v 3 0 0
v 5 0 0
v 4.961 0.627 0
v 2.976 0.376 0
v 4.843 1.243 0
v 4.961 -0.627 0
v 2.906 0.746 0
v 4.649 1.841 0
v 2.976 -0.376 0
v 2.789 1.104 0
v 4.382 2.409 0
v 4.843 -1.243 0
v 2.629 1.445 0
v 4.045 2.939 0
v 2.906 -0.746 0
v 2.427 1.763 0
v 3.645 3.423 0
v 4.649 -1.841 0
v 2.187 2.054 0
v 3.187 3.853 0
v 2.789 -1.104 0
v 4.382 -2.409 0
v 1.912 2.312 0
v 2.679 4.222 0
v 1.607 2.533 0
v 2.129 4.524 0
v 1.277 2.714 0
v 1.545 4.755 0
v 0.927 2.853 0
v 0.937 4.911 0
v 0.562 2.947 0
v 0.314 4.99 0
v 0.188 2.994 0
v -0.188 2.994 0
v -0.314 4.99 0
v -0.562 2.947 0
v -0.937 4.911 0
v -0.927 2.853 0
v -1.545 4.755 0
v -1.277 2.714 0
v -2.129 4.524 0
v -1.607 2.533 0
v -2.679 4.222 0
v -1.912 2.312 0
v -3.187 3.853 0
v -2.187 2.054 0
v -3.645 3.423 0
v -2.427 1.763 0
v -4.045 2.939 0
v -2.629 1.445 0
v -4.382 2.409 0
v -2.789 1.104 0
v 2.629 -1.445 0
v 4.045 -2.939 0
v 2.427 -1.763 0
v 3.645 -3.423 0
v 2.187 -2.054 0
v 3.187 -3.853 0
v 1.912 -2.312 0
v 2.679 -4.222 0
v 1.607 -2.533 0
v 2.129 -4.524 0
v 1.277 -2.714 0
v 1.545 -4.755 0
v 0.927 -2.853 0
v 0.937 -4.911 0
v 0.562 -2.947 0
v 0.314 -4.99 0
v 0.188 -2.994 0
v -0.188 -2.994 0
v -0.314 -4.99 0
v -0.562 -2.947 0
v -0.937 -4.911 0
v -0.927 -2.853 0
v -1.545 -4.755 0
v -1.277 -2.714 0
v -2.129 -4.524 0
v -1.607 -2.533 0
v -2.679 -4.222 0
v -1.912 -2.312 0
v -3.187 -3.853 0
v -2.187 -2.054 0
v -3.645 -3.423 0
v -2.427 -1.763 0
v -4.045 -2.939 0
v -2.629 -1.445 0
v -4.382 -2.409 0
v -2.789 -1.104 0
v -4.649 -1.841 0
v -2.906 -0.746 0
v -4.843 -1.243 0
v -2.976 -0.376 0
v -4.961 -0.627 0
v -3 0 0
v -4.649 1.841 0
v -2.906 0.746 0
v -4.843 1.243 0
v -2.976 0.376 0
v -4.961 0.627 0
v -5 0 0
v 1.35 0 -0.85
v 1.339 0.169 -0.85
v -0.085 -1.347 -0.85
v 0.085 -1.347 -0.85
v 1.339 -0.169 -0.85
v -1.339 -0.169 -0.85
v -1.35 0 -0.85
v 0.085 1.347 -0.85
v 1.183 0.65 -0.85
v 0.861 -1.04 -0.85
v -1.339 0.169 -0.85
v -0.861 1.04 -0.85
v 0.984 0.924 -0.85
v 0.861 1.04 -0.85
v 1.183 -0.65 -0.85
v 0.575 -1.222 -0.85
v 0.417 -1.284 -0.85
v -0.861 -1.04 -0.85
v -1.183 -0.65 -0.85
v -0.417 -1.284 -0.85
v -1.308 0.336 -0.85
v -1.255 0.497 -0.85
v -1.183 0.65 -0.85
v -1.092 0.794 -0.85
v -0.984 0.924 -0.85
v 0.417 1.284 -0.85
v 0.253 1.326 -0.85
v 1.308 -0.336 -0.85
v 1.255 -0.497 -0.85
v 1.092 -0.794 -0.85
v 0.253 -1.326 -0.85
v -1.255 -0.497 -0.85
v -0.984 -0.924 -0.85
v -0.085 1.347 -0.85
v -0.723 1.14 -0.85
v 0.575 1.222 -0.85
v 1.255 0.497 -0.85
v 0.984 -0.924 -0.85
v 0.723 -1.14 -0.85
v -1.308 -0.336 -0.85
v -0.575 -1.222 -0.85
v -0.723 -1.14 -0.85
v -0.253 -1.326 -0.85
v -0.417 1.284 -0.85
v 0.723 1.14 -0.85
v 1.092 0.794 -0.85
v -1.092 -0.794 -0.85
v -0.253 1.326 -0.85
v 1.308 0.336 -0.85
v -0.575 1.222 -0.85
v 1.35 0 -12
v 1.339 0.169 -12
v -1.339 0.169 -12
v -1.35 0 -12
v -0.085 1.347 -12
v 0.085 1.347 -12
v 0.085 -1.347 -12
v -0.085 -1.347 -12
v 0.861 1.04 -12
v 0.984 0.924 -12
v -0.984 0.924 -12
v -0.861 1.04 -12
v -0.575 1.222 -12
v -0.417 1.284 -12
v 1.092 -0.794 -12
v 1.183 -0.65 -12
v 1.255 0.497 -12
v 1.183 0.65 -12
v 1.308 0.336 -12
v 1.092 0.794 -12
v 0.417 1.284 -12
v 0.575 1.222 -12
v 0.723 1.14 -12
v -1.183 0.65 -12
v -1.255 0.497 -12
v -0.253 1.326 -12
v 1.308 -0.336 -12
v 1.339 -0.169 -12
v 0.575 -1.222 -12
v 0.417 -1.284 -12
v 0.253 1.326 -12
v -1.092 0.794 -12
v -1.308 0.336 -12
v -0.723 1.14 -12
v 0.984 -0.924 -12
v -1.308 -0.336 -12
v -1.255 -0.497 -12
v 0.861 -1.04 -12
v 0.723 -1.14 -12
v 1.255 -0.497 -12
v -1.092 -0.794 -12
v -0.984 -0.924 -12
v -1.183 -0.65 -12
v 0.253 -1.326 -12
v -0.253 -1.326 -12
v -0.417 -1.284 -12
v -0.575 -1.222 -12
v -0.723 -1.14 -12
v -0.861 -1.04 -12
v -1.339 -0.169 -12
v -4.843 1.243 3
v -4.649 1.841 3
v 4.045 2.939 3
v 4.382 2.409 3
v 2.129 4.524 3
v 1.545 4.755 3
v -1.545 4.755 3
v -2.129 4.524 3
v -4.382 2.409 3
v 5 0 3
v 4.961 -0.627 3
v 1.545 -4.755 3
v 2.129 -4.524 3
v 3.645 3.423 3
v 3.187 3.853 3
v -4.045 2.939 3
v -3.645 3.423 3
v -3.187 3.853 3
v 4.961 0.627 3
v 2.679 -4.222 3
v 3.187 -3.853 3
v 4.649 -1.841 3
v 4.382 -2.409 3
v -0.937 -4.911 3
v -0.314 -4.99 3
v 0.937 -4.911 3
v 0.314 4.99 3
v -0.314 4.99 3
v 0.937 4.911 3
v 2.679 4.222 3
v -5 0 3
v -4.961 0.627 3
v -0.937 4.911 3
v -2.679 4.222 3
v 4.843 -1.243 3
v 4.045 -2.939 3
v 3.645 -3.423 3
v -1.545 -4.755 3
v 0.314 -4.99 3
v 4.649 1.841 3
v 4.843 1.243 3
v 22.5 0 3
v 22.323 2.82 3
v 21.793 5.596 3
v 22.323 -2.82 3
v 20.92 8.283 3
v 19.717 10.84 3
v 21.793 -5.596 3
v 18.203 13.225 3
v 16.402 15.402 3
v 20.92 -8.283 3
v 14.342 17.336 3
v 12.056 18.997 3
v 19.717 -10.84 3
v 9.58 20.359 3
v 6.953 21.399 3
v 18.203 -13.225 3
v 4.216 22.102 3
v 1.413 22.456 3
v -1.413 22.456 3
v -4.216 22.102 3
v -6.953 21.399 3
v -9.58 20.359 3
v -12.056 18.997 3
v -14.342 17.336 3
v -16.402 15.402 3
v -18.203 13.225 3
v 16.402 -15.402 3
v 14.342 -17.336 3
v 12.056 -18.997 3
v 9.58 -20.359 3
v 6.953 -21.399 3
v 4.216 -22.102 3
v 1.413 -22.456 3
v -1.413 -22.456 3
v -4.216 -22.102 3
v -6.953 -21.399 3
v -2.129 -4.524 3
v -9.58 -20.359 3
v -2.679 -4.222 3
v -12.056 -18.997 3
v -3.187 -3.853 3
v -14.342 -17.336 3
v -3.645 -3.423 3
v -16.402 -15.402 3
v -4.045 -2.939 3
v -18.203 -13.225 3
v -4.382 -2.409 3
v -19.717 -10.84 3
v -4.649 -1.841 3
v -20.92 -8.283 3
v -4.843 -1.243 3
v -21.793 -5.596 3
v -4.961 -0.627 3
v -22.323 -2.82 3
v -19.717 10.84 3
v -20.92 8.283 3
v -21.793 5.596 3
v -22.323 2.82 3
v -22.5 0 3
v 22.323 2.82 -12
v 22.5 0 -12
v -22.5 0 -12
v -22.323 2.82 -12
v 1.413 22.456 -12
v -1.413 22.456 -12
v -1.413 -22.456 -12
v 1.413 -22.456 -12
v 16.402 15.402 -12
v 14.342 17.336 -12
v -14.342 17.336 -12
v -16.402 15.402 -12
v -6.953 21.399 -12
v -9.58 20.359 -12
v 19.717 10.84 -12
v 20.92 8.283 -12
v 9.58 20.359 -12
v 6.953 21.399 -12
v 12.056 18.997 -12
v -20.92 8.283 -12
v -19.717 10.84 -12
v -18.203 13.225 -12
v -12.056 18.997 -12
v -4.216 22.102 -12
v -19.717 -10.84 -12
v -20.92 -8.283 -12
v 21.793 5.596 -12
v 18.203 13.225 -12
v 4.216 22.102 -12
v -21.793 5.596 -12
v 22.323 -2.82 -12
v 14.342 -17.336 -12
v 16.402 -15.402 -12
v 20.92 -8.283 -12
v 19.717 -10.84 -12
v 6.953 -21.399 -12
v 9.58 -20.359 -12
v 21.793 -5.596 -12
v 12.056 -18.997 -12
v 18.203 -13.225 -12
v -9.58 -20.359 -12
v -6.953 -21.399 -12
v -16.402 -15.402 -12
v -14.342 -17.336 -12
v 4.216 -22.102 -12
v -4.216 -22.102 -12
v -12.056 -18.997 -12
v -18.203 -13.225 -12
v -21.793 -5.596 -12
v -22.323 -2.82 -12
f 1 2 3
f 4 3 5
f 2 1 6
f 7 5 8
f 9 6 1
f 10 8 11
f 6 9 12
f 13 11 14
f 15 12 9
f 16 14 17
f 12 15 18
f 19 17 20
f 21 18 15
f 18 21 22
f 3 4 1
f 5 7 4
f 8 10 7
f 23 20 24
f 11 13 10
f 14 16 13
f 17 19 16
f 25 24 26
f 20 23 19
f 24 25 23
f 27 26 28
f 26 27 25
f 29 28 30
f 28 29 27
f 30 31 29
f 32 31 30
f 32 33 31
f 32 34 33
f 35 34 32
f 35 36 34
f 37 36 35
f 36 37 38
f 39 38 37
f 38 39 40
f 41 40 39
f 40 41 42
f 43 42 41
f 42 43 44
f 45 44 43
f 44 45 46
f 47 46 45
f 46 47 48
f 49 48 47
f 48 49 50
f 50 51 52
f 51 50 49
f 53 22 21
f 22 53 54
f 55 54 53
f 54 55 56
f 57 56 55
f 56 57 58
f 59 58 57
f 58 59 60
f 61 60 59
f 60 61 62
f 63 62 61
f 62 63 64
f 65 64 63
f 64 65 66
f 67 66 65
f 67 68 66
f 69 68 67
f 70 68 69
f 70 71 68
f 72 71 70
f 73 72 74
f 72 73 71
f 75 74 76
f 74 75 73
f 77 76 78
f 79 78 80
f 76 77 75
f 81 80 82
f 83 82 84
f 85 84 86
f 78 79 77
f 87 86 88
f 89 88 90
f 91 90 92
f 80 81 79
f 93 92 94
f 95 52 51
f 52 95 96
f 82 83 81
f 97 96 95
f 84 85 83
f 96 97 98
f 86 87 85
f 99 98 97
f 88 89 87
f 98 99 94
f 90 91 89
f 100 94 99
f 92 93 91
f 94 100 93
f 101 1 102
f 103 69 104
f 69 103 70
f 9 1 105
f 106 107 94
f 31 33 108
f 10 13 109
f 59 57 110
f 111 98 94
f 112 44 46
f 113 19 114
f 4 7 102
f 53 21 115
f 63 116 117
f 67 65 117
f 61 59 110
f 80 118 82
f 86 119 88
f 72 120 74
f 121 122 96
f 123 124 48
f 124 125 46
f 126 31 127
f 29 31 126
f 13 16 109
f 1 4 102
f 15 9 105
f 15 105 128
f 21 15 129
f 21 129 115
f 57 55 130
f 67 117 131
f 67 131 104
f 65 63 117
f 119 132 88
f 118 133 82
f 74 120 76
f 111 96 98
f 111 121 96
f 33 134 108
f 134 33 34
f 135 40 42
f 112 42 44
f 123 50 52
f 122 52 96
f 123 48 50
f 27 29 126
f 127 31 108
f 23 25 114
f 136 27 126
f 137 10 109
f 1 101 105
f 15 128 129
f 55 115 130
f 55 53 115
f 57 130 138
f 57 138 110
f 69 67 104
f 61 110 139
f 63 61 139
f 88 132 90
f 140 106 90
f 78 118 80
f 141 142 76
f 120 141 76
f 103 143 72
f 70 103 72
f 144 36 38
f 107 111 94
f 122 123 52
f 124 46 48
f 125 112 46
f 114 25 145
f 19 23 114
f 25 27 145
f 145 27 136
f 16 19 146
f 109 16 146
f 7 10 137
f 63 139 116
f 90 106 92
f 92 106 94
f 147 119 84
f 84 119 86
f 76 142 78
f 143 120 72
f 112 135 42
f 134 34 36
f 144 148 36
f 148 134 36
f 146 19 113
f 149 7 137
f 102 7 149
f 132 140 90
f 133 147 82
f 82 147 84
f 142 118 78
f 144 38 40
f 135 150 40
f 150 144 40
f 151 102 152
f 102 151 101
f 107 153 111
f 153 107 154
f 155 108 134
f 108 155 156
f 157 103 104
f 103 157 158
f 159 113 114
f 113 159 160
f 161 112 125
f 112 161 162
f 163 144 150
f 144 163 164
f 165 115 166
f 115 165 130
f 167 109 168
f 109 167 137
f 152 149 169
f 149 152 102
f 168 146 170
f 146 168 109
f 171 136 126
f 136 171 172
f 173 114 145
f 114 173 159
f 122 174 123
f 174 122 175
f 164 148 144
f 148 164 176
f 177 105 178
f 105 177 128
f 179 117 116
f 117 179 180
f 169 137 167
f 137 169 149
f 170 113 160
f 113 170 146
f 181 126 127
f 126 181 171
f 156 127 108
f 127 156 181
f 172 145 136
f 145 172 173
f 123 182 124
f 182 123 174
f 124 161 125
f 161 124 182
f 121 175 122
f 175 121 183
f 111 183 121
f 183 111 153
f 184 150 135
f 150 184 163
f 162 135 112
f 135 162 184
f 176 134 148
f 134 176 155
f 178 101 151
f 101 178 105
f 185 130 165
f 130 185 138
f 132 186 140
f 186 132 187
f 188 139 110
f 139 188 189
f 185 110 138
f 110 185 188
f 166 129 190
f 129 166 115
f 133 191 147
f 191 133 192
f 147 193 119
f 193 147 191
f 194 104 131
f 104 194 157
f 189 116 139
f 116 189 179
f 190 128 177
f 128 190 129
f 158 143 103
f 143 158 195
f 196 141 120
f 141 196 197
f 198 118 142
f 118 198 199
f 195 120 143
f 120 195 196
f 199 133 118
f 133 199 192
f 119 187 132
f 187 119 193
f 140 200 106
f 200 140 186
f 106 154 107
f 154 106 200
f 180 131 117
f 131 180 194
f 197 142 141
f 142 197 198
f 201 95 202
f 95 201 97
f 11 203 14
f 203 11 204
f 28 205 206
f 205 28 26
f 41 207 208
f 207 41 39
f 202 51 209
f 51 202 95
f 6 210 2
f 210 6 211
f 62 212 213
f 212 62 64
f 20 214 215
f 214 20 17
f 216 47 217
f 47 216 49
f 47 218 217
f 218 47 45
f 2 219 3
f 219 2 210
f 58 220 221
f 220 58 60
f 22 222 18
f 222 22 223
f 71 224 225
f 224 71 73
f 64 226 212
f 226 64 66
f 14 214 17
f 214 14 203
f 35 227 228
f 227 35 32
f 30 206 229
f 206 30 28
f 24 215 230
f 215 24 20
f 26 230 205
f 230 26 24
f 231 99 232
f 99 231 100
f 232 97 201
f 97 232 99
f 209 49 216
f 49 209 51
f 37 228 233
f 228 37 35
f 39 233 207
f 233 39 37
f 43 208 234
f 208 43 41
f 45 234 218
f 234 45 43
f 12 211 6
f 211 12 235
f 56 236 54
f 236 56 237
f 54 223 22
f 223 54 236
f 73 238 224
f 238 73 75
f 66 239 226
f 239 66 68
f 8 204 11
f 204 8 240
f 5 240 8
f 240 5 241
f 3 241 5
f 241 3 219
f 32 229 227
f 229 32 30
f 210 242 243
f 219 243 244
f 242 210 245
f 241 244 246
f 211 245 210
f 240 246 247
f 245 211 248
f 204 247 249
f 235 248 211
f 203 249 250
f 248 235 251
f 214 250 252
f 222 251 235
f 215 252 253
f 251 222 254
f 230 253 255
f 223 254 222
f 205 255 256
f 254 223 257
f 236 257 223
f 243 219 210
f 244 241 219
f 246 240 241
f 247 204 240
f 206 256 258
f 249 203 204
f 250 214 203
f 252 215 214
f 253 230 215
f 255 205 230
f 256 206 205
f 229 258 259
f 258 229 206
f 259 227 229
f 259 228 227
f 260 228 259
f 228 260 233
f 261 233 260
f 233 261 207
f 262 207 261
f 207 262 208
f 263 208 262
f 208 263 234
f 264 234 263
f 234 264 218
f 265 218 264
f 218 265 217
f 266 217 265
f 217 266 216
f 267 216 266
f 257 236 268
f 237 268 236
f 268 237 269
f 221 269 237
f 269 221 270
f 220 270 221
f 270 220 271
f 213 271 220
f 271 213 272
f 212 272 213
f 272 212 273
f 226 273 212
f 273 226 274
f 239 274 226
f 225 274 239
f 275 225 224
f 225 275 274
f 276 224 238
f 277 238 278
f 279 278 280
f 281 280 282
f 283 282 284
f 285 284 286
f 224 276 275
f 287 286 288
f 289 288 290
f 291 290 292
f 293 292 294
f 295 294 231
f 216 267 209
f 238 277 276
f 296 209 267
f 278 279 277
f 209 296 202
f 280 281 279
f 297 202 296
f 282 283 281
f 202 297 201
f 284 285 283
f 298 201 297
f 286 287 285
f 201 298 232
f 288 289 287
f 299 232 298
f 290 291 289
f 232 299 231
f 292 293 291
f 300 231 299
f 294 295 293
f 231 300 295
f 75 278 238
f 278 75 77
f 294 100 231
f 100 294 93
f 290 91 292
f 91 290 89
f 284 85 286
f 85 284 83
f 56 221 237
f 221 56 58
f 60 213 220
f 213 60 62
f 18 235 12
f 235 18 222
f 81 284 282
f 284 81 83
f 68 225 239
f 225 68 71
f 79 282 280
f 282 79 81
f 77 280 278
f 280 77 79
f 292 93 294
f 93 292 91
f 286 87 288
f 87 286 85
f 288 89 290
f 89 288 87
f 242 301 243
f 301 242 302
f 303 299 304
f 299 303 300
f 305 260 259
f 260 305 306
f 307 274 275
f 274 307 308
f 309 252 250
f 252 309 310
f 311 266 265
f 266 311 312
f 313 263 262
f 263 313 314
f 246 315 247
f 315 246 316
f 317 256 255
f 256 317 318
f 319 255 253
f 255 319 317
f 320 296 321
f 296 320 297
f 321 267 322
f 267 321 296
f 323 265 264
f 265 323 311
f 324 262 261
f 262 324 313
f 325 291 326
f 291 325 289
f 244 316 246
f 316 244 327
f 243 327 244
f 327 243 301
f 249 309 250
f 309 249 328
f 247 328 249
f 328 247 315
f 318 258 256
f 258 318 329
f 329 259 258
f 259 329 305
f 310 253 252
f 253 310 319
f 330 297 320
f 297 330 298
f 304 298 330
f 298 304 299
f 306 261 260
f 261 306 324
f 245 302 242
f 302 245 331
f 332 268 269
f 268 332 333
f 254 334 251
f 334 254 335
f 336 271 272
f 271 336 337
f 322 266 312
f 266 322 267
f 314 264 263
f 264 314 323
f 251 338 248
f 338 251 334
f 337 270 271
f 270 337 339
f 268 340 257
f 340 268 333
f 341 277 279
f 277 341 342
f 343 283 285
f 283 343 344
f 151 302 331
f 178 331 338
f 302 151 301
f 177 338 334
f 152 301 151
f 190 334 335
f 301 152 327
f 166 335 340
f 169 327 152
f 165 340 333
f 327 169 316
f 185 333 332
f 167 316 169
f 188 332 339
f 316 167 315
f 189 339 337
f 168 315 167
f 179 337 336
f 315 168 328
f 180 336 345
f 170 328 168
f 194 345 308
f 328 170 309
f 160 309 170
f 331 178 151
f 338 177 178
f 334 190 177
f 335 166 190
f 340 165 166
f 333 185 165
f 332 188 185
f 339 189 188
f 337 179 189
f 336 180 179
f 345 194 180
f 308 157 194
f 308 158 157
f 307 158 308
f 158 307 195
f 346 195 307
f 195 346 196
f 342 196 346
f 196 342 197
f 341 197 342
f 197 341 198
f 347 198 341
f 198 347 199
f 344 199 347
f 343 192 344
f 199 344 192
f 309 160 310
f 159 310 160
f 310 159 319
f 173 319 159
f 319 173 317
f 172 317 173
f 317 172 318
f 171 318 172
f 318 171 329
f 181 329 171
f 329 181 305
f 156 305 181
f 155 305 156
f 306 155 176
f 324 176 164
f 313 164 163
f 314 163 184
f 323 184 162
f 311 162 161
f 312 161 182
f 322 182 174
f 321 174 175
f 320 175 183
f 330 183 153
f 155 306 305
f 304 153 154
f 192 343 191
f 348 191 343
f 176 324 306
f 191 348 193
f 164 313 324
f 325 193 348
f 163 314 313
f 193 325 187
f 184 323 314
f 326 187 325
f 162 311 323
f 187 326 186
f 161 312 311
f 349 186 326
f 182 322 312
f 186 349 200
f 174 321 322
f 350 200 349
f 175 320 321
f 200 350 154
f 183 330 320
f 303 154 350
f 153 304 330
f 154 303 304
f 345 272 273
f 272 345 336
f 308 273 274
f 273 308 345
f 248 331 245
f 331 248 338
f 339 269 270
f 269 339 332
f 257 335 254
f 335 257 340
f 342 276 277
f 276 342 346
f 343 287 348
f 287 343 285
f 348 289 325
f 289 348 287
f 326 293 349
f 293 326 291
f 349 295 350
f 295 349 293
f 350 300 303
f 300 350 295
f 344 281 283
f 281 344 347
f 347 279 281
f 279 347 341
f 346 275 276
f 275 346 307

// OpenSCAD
$fn = 50;

difference() {
	union() {
		translate(v = [0, 0, -12.0]) {
			cylinder(h = 15, r = 22.5);
		}
	}
	union() {
		translate(v = [0, 0, 0]) {
			rotate(a = [0, 0, 0]) {
				difference() {
					union() {
						translate(v = [0, 0, -15.0]) {
							cylinder(h = 15, r = 1.0);
						}
						translate(v = [0, 0, -0.85]) {
							cylinder(h = 0.85, r1 = 1.35, r2 = 3.0);
						}
						translate(v = [0, 0, -15.0]) {
							cylinder(h = 15, r = 1.35);
						}
						translate(v = [0, 0, -15.0]) {
							cylinder(h = 15, r = 1.0);
						}
					}
					union();
				}
			}
		}
		#cylinder(h = 3, r = 5.0);
	}
}
